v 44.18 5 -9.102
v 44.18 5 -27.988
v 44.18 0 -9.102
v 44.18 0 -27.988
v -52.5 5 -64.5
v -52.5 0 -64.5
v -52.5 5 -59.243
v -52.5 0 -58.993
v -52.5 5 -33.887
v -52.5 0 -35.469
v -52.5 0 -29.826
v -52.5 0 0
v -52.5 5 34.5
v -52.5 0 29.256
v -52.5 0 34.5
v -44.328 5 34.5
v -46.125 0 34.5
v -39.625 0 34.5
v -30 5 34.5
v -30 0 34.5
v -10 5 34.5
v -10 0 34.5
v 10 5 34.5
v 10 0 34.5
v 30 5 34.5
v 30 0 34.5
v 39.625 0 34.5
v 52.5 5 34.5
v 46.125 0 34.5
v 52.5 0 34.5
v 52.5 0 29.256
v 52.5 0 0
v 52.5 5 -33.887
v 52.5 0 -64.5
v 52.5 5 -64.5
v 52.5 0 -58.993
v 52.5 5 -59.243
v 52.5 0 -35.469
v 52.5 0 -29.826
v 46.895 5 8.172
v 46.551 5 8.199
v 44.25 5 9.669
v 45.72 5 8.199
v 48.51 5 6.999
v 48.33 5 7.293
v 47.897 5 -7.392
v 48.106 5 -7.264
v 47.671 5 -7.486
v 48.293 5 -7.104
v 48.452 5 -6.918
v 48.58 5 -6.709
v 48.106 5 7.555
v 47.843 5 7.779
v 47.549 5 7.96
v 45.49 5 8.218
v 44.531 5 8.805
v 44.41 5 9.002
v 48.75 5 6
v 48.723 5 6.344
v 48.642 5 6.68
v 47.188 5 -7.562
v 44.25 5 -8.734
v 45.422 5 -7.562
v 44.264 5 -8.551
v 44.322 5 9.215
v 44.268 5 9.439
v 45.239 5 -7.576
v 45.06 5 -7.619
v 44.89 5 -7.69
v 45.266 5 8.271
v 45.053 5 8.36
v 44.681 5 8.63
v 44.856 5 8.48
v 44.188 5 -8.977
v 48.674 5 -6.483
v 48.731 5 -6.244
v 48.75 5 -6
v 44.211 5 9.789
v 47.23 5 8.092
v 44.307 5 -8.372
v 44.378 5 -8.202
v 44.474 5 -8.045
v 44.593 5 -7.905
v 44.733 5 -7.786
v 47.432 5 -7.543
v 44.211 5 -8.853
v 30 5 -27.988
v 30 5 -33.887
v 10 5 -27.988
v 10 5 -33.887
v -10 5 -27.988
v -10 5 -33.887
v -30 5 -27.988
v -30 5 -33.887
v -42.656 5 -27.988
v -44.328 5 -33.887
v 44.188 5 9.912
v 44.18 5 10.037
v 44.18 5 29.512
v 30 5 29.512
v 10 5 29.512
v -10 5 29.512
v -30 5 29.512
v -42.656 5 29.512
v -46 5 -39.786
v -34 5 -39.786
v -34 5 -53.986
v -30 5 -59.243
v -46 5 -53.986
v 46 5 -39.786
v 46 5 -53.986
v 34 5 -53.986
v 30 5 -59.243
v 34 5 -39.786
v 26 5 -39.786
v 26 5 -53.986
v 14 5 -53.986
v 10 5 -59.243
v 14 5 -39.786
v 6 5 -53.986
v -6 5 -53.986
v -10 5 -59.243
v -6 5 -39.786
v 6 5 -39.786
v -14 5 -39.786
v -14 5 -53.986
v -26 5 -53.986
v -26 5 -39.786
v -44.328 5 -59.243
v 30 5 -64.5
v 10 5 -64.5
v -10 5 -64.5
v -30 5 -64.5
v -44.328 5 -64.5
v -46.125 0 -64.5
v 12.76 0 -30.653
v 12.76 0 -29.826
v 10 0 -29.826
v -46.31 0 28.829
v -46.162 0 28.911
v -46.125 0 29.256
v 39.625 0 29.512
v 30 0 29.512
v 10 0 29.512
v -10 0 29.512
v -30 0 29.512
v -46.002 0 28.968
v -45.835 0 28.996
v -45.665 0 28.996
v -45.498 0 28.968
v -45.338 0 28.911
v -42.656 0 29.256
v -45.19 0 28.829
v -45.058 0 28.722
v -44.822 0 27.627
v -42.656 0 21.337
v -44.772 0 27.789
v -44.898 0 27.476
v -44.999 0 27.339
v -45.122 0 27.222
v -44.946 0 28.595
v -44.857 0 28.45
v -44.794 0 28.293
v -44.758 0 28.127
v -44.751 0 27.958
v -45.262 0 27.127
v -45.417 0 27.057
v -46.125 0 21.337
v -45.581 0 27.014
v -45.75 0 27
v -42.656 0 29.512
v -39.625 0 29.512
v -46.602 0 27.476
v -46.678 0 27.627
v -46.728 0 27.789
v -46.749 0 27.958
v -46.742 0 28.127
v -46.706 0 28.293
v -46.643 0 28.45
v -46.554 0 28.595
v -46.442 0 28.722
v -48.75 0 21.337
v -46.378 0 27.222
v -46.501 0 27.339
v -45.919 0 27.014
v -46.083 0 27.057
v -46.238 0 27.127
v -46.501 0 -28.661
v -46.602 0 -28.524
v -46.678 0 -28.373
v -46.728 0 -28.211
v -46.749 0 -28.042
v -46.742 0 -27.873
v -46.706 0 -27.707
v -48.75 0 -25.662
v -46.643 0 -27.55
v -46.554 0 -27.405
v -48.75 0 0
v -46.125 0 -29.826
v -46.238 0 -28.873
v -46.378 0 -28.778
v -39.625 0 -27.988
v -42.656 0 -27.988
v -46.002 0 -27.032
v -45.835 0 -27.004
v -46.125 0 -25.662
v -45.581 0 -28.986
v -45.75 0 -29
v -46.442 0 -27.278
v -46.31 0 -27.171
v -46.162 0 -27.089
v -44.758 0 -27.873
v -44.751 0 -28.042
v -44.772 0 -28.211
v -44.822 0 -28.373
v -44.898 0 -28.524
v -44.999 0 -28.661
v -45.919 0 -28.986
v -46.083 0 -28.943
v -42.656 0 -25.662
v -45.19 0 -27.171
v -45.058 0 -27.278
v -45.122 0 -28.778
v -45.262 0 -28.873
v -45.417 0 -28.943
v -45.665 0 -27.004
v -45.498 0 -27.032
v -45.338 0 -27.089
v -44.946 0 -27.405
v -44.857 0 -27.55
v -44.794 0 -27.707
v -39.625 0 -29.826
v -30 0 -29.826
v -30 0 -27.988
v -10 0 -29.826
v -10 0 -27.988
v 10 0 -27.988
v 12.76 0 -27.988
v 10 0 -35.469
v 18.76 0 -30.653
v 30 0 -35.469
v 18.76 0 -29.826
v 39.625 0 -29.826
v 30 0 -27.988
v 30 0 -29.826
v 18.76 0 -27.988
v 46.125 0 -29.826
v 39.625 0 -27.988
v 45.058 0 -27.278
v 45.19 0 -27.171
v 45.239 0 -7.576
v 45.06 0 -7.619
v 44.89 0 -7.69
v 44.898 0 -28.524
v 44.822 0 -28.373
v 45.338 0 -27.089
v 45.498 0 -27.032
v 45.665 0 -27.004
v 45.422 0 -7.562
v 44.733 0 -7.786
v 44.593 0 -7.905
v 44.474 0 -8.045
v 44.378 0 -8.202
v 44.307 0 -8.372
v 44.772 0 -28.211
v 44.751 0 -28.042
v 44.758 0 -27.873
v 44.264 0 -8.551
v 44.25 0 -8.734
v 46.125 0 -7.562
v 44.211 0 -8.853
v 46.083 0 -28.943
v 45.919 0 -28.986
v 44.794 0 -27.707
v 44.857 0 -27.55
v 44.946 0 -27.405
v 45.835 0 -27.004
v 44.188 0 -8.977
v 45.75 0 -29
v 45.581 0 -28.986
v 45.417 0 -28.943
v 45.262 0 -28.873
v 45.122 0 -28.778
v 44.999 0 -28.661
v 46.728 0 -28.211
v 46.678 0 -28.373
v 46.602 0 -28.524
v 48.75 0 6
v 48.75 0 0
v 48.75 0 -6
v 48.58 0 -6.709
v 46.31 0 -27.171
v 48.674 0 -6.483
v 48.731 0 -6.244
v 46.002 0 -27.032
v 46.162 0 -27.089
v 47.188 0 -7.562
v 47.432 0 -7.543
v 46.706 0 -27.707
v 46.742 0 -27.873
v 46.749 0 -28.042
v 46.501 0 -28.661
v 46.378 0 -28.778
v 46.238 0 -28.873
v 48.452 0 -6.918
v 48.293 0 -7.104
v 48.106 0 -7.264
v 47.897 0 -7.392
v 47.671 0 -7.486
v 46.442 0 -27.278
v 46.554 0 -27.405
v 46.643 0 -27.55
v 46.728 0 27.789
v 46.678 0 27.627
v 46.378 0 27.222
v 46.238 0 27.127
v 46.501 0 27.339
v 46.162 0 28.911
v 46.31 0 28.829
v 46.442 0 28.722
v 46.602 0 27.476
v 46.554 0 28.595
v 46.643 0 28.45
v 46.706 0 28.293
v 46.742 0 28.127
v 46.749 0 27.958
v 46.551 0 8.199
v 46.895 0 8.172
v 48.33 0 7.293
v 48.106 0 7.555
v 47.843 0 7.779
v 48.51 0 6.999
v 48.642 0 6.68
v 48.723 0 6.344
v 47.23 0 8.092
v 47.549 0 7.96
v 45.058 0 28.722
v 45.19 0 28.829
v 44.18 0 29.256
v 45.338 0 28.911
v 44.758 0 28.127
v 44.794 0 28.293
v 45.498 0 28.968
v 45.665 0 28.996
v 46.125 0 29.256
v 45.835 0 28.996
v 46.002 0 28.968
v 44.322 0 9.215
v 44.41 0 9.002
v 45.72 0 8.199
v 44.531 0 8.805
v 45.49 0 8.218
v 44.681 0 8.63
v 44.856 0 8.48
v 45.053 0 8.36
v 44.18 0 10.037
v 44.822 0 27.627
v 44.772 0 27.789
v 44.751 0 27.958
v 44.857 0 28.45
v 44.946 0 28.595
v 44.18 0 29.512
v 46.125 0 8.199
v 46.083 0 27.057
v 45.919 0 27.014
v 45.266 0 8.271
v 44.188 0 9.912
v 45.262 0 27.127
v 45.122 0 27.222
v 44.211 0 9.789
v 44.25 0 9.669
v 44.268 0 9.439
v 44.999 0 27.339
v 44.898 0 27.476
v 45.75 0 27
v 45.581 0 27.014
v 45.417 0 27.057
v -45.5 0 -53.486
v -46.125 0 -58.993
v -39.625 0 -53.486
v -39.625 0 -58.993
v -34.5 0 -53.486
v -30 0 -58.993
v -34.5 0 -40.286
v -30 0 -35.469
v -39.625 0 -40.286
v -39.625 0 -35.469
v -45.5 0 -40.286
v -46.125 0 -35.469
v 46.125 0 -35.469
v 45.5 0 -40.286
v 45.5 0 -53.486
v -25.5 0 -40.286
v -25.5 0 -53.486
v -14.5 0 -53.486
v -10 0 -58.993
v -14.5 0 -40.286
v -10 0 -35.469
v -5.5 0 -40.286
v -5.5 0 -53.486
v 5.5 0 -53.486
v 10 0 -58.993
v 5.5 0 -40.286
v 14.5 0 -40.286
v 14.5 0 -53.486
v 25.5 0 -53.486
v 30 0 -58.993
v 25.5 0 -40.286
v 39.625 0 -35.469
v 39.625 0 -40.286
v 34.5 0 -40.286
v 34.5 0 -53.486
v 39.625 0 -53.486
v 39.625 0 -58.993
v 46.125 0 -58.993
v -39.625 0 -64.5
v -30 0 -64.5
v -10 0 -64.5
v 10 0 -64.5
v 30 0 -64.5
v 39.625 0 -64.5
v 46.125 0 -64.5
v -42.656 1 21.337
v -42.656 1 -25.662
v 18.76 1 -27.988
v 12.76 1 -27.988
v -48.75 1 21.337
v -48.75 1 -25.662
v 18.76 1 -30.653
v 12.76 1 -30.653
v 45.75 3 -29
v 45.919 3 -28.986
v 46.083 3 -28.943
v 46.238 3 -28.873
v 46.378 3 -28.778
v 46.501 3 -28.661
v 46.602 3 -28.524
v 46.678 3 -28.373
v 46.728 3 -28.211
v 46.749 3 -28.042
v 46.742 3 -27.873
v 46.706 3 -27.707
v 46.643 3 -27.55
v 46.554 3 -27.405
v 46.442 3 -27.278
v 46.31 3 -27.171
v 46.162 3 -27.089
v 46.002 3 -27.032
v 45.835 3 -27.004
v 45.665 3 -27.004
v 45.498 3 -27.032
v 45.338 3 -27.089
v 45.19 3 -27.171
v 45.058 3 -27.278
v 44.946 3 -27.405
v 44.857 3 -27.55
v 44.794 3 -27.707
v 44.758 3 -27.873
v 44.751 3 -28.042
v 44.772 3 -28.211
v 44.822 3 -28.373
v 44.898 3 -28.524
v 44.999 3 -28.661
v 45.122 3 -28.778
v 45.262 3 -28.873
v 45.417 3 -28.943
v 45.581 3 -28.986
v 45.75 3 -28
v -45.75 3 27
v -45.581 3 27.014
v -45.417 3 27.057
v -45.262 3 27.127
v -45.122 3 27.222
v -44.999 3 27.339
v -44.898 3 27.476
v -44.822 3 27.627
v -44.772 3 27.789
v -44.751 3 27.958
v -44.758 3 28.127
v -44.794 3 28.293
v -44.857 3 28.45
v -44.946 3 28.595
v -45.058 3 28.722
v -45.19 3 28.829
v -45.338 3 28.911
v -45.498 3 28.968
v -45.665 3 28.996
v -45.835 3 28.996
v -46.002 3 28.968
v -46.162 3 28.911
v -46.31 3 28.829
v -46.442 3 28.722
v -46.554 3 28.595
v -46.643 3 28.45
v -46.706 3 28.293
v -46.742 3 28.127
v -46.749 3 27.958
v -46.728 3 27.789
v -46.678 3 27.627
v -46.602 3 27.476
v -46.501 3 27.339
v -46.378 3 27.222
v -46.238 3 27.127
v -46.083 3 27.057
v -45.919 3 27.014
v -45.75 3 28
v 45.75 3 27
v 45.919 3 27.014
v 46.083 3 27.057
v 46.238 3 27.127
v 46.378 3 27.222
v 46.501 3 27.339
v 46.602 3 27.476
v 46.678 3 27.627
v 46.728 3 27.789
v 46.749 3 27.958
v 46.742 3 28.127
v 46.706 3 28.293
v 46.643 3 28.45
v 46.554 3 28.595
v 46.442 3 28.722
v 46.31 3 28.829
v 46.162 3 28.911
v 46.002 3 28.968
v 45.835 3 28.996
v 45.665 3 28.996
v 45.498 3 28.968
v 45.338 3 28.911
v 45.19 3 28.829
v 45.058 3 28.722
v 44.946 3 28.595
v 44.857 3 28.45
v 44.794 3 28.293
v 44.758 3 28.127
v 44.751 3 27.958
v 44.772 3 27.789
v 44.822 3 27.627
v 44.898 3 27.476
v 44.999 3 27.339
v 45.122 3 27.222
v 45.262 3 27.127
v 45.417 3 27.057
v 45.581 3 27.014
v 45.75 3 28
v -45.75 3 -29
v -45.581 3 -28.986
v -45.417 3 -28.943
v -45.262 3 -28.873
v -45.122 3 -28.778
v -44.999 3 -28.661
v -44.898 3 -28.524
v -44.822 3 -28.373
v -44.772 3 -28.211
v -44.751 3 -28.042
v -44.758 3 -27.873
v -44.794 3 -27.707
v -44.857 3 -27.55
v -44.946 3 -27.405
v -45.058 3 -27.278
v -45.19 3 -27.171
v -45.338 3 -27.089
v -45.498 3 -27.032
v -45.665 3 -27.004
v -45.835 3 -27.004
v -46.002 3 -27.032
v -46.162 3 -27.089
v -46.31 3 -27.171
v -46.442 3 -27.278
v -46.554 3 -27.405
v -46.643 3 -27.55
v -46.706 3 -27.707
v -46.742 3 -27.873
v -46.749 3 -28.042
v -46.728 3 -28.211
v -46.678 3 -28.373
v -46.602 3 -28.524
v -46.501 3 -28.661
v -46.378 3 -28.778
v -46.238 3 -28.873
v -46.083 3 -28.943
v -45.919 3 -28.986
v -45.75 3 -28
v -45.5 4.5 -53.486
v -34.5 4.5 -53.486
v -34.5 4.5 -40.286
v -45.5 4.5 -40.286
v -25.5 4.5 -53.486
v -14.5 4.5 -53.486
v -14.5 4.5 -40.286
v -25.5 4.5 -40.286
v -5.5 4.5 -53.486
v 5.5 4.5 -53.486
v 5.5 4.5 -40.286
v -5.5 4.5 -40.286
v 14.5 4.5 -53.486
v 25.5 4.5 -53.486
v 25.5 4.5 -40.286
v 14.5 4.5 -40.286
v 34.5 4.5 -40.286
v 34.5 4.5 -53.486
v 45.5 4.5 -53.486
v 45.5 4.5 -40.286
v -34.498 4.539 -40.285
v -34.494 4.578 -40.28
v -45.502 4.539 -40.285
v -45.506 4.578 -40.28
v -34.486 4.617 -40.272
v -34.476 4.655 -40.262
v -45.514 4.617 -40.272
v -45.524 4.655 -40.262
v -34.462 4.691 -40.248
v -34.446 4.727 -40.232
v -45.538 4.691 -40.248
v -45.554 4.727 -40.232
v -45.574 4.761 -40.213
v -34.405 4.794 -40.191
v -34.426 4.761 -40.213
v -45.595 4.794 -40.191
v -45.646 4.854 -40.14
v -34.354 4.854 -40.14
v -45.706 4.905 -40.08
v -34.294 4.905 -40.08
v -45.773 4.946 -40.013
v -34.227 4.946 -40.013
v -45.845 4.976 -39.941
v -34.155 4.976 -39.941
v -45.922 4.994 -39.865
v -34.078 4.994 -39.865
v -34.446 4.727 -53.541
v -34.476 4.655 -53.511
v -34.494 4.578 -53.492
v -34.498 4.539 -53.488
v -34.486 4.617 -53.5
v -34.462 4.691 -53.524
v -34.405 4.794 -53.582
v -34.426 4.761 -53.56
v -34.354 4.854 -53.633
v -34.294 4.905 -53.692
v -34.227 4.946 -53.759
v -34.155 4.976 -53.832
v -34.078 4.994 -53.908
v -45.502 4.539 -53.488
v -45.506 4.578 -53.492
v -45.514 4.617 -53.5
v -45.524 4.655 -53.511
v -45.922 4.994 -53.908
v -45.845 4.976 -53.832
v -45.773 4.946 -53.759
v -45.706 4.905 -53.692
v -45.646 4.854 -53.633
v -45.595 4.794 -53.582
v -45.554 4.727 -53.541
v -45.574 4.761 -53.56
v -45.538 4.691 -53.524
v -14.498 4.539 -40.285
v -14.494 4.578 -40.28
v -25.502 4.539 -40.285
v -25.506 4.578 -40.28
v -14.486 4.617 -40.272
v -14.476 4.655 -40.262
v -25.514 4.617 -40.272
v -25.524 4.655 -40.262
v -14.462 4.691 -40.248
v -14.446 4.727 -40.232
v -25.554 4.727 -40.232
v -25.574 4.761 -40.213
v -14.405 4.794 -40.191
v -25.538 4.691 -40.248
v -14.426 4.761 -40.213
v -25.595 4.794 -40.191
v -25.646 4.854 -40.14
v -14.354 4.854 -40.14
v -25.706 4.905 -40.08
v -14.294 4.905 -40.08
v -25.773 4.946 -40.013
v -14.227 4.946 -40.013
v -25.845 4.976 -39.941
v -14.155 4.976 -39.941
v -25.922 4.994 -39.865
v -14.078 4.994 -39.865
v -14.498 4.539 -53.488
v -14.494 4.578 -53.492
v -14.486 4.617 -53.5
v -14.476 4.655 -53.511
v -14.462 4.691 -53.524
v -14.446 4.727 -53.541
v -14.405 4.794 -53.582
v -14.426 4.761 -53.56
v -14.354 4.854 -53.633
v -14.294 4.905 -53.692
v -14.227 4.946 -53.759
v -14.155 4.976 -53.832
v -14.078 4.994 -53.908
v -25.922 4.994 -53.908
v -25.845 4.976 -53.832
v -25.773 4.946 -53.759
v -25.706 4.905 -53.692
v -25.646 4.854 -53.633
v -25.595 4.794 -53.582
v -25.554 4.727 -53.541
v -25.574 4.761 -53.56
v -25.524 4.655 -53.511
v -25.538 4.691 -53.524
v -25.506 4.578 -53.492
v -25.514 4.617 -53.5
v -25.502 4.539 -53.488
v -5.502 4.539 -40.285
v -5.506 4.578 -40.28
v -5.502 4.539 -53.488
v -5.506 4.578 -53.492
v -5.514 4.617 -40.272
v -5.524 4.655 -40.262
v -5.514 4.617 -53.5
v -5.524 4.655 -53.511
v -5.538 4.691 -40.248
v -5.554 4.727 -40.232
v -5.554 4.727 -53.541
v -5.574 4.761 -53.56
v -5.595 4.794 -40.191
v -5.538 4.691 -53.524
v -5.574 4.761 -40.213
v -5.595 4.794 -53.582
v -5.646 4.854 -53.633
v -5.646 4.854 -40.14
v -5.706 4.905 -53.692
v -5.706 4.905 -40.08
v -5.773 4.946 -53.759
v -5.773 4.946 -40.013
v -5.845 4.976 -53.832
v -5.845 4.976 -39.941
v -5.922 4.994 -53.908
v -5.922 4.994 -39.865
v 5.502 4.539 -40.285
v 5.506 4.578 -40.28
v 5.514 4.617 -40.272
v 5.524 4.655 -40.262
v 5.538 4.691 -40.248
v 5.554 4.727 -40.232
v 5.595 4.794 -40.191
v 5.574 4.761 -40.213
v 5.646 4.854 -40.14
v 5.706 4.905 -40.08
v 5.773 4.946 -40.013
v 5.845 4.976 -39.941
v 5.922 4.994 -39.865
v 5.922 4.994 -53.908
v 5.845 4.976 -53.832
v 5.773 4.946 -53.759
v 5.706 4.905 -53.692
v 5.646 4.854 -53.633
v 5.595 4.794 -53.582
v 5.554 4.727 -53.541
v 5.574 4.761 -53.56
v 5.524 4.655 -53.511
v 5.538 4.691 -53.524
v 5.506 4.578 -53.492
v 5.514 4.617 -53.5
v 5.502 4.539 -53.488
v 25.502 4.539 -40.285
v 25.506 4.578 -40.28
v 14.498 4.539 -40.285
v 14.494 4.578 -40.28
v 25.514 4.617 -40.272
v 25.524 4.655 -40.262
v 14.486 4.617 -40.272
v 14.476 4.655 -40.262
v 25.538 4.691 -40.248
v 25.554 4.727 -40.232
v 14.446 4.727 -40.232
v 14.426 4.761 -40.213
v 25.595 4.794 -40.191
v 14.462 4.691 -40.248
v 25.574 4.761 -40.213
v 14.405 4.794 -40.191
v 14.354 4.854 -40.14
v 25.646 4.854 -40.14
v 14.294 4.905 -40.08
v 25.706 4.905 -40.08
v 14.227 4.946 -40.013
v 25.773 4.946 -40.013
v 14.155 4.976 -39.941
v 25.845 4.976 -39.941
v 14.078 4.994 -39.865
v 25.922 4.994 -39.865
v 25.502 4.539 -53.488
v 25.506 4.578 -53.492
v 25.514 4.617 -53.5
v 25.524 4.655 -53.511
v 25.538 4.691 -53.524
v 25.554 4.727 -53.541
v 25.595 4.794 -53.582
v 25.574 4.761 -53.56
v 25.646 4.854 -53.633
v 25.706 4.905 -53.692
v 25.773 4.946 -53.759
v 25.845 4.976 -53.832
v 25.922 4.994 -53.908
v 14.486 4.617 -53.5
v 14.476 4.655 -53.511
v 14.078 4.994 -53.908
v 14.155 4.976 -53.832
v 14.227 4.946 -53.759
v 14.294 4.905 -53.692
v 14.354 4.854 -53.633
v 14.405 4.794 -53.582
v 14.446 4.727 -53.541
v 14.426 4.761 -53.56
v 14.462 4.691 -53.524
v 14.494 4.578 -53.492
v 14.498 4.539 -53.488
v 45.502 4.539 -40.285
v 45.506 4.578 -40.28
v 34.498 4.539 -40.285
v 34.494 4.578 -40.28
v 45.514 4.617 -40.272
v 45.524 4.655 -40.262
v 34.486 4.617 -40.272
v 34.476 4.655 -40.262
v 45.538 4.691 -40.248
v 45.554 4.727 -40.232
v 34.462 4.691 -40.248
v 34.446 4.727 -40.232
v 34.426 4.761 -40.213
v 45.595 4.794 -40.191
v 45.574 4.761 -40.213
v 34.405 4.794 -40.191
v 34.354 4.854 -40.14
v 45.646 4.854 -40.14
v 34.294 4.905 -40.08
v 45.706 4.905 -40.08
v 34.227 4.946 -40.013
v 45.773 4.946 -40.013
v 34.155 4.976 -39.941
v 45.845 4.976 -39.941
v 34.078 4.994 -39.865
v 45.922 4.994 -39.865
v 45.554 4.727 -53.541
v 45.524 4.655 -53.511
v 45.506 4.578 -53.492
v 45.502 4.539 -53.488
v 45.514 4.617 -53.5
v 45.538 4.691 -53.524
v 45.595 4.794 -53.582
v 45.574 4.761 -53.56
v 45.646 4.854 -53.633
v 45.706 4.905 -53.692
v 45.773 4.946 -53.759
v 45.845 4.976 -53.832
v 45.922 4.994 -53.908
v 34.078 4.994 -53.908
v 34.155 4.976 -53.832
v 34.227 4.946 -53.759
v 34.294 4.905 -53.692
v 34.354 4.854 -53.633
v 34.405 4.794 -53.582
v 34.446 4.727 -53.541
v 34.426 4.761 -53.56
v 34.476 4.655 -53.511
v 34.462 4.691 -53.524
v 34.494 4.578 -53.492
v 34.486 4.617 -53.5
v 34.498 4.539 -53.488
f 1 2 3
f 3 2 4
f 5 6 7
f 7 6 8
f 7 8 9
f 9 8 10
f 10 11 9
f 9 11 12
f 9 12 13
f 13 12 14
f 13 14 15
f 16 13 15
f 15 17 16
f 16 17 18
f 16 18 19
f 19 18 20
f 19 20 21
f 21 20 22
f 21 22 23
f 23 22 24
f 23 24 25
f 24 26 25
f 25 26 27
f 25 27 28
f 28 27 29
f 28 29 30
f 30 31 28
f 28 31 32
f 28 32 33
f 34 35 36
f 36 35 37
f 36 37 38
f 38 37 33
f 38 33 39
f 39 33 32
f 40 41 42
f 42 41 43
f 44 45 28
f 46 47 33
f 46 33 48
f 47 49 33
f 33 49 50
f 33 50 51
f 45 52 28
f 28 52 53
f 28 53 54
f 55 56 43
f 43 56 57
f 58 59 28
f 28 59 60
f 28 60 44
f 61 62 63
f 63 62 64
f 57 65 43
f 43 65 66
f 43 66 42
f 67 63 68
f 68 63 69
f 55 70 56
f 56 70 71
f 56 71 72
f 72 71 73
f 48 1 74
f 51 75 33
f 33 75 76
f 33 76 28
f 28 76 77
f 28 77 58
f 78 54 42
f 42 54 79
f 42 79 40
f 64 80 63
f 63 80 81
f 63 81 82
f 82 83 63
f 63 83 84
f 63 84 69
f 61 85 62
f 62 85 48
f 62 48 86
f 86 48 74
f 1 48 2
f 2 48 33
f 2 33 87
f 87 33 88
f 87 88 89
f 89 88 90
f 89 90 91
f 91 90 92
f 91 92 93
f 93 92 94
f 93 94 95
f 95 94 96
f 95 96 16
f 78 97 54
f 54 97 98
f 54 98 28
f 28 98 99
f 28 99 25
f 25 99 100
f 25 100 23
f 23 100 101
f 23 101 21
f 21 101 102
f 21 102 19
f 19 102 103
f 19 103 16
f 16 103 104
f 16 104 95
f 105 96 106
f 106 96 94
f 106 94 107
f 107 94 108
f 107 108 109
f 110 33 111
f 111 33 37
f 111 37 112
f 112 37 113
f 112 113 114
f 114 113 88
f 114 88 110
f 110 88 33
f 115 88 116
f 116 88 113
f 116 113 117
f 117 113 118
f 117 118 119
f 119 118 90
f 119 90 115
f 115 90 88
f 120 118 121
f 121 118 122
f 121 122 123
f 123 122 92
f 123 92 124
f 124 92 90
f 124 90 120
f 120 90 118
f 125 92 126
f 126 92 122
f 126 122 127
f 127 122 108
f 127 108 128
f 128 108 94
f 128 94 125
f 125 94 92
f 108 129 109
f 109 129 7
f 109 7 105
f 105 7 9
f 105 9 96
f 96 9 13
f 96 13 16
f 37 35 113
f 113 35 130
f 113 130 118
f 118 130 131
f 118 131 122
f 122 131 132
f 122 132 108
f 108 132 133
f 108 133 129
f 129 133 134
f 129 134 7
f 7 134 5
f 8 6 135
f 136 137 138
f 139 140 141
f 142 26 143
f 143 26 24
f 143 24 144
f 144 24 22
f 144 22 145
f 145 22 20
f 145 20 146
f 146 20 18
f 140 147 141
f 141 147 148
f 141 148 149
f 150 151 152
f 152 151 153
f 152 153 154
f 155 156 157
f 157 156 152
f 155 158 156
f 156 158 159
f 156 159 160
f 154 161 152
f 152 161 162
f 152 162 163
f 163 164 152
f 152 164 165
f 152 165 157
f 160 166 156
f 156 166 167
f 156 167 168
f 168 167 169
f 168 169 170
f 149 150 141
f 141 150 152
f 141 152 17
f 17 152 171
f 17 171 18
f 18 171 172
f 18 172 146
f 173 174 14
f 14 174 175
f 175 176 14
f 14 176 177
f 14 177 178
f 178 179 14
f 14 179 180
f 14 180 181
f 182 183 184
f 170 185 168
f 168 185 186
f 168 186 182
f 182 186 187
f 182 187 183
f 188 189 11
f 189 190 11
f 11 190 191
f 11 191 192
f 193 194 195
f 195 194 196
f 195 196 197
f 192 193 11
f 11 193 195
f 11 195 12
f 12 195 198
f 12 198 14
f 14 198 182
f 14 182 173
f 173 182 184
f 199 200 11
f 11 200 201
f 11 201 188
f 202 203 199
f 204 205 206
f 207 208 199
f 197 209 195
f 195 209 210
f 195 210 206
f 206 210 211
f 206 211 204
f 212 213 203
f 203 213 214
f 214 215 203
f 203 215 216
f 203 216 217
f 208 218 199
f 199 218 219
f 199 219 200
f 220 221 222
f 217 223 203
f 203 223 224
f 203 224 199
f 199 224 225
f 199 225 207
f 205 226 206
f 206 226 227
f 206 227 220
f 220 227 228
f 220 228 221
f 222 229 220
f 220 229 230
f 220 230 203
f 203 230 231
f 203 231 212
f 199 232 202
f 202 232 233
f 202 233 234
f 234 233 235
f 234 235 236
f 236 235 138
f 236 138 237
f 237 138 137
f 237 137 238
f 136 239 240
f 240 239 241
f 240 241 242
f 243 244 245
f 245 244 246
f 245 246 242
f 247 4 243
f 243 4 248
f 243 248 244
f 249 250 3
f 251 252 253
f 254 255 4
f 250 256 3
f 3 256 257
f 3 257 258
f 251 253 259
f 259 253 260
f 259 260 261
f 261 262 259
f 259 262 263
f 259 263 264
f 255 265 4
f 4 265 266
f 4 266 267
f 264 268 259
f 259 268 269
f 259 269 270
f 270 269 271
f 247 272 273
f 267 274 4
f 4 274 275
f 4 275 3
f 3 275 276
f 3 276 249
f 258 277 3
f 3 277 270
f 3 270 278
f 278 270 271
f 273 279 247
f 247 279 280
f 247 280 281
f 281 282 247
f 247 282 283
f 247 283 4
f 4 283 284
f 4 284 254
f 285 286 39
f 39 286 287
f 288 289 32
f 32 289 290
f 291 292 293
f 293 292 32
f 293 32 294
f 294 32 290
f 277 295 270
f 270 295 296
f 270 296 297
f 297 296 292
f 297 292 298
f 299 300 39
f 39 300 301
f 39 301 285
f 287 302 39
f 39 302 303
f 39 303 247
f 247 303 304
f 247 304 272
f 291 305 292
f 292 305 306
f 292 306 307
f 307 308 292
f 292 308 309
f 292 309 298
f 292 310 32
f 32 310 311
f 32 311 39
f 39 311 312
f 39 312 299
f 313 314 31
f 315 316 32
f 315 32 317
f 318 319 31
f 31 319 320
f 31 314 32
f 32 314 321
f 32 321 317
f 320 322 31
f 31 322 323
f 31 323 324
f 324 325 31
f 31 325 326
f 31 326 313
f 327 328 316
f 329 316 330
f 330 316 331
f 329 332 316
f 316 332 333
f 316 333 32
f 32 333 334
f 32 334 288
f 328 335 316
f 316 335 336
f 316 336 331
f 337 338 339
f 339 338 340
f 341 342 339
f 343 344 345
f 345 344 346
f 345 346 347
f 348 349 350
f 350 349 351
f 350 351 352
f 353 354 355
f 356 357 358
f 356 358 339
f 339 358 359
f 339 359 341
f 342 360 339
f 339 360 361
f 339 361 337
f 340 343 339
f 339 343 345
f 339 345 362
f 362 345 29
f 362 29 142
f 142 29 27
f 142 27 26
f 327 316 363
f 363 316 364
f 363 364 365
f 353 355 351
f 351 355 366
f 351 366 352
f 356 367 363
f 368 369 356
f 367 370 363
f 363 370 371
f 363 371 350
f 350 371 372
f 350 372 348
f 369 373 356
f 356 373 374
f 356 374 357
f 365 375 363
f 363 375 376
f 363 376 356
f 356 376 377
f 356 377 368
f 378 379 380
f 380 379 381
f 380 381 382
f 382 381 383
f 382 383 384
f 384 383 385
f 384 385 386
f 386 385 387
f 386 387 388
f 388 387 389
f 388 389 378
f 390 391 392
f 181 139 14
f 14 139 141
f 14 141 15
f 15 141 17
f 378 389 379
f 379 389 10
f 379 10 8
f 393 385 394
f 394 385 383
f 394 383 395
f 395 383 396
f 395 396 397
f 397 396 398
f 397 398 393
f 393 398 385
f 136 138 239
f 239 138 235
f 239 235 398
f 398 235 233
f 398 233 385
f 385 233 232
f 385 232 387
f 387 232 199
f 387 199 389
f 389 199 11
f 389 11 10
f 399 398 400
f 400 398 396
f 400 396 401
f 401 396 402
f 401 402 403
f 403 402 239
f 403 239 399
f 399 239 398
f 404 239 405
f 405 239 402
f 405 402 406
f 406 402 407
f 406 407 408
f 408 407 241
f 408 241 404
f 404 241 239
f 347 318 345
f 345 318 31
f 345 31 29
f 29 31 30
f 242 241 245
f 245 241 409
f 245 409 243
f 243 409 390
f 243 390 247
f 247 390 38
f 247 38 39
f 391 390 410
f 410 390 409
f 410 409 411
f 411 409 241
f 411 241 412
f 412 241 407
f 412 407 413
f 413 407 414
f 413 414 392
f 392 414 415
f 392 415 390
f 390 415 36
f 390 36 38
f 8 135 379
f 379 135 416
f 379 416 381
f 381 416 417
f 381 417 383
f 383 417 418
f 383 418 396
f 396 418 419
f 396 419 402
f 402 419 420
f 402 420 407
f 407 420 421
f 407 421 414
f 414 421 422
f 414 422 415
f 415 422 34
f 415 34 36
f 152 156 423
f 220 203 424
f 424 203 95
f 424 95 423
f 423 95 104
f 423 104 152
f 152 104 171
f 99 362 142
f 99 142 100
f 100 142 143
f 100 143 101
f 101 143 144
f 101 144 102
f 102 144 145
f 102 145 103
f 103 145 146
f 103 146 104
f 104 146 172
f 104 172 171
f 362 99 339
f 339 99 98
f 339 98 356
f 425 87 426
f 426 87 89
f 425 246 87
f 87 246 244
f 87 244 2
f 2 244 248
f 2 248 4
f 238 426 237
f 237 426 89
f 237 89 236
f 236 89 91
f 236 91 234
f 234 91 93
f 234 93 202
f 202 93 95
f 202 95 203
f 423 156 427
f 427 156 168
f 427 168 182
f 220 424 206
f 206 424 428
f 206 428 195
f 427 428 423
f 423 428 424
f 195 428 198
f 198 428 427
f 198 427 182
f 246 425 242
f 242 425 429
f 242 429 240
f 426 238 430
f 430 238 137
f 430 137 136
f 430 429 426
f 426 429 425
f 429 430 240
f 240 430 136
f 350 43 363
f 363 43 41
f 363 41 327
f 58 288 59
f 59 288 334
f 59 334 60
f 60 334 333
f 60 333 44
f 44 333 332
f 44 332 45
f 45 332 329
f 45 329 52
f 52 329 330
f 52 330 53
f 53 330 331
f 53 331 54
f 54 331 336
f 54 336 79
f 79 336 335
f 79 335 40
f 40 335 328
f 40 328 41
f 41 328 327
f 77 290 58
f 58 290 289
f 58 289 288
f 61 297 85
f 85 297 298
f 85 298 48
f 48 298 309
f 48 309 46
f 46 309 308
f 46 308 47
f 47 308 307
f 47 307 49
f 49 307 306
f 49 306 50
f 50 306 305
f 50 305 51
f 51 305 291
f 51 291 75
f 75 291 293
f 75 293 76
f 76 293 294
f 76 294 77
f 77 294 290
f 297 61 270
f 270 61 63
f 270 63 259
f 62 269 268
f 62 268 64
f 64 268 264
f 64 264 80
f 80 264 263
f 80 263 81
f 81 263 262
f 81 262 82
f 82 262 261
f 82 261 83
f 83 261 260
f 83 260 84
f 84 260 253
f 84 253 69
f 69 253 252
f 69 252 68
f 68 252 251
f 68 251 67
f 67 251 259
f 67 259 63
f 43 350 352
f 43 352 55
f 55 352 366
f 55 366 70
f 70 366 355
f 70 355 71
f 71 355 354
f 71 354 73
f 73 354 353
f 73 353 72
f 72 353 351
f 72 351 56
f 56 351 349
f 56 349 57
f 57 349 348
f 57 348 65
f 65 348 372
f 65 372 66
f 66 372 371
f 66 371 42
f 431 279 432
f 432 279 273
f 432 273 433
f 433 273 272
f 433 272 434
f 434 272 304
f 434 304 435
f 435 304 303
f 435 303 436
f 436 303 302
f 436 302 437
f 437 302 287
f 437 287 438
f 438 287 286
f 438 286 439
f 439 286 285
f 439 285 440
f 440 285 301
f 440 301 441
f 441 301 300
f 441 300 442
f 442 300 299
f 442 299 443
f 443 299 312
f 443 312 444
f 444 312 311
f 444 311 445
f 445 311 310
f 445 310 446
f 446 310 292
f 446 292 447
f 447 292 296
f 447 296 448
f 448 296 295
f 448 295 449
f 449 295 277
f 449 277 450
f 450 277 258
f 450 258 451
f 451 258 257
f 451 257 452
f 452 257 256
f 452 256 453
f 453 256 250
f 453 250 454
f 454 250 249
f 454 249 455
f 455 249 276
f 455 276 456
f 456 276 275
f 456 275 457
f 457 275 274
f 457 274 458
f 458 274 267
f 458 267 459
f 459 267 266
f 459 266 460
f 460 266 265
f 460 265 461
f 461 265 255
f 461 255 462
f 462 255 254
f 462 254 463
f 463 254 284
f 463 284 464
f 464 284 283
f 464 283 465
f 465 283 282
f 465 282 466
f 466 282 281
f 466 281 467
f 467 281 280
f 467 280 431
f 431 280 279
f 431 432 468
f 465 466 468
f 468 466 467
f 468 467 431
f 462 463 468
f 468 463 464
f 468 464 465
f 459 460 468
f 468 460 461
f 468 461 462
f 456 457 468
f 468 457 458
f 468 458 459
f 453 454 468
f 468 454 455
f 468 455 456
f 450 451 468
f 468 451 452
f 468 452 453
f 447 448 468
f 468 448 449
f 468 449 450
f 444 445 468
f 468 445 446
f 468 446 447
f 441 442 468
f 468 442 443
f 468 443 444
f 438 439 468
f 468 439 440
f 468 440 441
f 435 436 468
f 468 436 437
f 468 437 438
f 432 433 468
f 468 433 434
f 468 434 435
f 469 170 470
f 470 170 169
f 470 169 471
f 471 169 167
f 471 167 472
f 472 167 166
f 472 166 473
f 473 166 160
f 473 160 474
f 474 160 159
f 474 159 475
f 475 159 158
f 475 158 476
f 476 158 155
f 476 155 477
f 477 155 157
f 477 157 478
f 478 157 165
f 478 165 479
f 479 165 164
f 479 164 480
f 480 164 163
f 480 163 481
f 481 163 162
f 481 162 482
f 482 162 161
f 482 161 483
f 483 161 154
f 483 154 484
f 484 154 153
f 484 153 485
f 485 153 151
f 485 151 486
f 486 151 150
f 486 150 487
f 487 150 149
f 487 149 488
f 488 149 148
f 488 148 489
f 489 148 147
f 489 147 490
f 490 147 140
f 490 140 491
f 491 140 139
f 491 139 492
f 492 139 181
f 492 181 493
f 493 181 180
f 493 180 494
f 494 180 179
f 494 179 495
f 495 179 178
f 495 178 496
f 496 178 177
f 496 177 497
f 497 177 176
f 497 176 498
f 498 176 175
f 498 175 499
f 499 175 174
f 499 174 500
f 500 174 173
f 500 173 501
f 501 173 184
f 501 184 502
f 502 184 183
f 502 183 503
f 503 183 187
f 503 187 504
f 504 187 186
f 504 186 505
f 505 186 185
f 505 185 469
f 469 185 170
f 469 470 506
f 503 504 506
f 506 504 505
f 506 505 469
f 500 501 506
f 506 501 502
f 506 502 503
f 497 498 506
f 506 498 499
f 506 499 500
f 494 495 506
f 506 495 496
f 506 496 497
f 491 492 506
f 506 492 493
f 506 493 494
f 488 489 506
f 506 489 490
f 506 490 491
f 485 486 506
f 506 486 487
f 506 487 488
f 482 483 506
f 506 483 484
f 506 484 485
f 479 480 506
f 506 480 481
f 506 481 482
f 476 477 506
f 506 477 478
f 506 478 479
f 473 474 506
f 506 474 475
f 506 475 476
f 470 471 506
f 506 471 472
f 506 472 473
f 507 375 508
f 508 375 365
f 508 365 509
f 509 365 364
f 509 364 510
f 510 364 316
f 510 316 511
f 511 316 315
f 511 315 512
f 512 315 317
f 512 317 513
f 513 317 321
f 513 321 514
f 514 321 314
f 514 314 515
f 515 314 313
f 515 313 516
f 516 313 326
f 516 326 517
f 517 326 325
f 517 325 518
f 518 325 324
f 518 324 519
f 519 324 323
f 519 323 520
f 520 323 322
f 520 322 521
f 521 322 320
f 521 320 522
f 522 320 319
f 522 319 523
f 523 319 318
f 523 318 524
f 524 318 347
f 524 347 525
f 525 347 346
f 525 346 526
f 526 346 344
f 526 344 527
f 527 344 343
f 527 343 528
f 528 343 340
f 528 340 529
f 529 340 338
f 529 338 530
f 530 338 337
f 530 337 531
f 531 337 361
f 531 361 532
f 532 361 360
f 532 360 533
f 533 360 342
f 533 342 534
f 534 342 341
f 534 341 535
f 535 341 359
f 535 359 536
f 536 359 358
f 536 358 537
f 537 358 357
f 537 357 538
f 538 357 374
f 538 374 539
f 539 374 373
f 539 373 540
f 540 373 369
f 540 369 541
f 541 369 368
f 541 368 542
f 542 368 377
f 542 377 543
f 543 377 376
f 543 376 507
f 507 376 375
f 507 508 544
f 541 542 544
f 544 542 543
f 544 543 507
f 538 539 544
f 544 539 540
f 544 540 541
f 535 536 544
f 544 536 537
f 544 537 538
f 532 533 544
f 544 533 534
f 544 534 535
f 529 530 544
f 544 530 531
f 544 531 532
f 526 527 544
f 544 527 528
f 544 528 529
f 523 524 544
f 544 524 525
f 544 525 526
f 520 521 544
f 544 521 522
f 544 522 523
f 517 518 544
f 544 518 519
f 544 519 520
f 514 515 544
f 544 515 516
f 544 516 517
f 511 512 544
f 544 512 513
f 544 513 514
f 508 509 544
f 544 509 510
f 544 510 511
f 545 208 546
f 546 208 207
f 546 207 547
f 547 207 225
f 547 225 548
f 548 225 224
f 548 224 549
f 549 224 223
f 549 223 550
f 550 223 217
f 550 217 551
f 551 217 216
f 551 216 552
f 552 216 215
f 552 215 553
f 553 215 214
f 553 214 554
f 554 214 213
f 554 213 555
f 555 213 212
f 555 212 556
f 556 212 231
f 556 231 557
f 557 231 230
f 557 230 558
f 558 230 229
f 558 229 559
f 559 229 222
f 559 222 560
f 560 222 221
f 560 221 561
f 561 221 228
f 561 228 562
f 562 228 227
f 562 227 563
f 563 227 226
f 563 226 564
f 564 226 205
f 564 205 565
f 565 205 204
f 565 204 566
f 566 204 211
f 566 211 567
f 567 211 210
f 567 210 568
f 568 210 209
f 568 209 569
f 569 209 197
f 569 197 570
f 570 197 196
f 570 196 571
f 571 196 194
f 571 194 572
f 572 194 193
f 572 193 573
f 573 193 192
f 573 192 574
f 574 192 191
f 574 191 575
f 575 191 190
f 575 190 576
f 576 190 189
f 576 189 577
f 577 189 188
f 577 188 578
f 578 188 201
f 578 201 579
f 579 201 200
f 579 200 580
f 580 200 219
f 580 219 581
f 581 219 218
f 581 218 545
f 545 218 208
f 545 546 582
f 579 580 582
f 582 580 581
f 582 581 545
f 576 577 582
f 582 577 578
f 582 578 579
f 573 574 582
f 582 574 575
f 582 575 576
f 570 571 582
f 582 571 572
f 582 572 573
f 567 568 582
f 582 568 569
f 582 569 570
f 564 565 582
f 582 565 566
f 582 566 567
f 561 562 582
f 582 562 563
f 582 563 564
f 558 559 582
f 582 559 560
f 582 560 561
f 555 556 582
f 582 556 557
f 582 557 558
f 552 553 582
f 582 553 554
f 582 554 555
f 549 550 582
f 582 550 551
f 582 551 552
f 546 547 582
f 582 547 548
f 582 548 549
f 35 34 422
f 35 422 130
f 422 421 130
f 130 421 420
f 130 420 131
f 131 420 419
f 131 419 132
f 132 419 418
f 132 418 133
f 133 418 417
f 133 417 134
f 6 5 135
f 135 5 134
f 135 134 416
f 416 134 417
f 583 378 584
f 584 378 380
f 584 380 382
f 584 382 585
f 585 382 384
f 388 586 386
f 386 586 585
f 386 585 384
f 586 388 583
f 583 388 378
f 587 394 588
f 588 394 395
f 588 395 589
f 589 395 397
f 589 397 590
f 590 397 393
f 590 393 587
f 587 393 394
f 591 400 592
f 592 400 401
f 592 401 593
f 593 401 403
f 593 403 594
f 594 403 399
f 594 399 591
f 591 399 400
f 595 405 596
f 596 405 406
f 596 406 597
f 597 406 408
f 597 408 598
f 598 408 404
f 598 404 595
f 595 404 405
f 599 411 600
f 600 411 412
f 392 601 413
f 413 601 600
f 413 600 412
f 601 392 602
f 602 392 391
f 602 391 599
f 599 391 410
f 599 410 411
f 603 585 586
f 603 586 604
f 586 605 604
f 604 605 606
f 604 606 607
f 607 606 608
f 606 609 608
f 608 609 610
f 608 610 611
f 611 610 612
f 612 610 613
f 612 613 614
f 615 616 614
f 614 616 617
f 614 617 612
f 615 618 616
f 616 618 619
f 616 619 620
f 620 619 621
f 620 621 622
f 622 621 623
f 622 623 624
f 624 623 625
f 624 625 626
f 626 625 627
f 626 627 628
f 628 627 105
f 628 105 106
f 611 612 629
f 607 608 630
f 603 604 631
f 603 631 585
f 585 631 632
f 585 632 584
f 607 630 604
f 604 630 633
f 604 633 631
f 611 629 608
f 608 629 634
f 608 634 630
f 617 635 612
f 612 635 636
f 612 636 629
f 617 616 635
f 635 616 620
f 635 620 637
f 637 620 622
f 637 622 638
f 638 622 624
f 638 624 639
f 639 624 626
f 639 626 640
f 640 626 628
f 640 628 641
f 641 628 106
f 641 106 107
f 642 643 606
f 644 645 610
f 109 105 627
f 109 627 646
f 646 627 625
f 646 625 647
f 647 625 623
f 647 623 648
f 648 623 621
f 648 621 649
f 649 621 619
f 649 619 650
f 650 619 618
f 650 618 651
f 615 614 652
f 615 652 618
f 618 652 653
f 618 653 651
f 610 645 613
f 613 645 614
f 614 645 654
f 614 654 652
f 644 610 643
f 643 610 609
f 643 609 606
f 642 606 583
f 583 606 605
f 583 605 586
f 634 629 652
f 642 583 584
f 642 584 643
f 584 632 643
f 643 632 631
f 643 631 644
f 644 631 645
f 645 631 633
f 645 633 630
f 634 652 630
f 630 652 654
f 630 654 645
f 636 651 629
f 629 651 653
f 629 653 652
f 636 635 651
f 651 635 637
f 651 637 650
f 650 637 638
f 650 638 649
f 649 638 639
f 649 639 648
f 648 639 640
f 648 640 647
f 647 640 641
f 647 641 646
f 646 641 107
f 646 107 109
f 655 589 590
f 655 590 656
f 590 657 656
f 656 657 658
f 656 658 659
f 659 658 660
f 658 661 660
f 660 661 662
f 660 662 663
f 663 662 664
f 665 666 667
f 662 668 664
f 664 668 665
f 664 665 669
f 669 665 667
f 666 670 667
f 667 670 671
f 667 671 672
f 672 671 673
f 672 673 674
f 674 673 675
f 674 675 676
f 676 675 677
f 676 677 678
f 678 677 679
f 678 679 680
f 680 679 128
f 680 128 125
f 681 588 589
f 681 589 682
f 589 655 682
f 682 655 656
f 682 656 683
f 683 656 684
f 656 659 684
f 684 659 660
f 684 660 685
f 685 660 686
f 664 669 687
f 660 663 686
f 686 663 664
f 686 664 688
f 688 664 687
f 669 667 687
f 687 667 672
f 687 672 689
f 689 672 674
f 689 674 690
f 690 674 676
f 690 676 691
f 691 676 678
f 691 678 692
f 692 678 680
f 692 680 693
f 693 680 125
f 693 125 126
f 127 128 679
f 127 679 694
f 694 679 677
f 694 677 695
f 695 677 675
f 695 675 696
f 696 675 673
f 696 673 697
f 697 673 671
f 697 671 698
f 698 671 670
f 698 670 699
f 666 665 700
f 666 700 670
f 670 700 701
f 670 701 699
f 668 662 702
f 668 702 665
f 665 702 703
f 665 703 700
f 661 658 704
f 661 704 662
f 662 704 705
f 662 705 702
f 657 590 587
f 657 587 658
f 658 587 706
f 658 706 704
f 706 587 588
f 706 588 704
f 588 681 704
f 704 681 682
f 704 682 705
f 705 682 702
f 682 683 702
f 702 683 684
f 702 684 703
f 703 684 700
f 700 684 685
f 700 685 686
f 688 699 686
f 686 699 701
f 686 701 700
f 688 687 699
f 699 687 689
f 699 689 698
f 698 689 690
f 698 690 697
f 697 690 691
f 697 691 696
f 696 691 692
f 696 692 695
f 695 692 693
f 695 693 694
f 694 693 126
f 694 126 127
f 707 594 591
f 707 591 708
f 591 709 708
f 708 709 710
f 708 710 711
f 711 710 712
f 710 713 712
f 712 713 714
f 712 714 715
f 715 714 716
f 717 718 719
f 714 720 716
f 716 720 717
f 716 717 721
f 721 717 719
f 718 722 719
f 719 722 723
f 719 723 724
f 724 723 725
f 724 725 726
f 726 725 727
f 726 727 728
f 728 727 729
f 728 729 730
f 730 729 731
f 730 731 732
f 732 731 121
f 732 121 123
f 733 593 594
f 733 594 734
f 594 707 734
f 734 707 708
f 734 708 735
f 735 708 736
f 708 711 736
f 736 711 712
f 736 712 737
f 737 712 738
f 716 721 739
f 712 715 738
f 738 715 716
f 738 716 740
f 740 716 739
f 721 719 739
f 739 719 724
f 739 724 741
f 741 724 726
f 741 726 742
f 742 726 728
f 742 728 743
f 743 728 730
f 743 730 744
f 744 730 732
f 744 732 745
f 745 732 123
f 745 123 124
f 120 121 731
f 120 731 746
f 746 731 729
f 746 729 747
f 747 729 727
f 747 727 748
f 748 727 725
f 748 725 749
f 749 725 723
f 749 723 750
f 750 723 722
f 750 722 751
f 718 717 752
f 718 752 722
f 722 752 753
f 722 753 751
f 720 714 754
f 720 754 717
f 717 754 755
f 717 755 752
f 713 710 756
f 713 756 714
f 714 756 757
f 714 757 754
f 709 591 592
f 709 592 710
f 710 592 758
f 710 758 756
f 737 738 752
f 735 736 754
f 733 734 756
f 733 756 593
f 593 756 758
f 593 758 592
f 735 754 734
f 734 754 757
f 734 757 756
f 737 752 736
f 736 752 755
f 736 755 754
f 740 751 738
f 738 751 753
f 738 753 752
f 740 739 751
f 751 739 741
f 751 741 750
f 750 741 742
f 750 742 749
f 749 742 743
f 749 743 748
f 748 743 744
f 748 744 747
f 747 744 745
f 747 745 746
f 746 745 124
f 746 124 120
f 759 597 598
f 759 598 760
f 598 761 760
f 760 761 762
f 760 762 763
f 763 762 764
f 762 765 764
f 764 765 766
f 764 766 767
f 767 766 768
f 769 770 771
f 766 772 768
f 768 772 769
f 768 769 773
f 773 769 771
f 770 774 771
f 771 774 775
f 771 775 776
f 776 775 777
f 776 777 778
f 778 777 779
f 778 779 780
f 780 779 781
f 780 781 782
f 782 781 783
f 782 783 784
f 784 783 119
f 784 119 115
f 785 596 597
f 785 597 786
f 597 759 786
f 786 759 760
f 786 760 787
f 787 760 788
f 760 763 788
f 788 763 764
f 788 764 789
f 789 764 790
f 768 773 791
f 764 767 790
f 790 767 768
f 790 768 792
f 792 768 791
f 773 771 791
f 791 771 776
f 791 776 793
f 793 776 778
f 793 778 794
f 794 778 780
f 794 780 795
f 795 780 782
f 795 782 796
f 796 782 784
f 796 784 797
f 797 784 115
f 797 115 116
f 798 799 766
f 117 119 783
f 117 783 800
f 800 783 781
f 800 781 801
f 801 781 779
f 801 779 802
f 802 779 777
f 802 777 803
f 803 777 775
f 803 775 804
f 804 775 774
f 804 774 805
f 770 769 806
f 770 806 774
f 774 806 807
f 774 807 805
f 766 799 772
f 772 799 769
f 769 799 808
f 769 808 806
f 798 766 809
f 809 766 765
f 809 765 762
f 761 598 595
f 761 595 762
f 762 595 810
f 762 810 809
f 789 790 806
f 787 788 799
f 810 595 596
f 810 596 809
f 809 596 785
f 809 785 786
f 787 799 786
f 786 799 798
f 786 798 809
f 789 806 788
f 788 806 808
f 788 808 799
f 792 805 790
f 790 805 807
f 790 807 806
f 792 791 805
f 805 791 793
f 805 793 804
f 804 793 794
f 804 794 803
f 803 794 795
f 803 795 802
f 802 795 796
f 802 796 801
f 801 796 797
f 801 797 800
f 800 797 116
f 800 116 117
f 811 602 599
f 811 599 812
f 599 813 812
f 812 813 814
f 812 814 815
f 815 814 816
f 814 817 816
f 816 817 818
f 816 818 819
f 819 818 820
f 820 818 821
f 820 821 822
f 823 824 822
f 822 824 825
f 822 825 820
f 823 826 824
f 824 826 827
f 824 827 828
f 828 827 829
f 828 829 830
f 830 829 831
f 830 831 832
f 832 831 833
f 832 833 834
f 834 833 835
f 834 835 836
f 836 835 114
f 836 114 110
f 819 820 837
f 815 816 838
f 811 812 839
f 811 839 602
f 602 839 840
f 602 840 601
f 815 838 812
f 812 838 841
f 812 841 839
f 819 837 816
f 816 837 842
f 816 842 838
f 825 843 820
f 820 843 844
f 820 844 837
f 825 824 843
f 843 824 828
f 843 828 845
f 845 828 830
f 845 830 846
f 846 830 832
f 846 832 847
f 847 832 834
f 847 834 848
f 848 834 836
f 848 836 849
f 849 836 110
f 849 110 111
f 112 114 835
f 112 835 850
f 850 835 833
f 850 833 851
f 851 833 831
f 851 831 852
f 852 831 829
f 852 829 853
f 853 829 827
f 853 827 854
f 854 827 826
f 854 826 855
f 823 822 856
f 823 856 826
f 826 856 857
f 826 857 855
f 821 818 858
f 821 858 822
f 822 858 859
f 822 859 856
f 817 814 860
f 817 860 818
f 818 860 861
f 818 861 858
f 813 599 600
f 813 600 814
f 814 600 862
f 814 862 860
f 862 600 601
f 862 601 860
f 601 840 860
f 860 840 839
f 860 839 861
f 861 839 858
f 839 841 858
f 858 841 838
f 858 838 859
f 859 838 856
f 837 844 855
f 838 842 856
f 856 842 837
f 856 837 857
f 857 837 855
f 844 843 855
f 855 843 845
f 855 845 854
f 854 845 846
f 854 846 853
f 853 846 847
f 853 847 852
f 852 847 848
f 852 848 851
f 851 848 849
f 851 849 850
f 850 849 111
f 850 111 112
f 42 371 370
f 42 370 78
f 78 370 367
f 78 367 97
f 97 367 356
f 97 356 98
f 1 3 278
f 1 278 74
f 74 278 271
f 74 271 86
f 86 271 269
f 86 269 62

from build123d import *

# Parameters (mm, degrees)
SKETCH1_W           = 105
SKETCH1_H           = 69
BOSS_EXTRUDE1_DEPTH = 5
SKETCH2_W           = 86.836
SKETCH2_H           = 57.499
CUT_EXTRUDE1_DEPTH  = 81.210380614
CUT_EXTRUDE2_DEPTH  = 1
SKETCH4_W           = 5
SKETCH4_H           = 2.165
SKETCH4_H_2         = 0.335
CUT_EXTRUDE3_DEPTH  = 1
CUT_EXTRUDE4_DEPTH  = 81.210380614
SKETCH9_R           = 1
CUT_EXTRUDE7_DEPTH  = 3
SKETCH7_W           = 105
SKETCH7_H           = 30
BOSS_EXTRUDE2_DEPTH = 5
SKETCH8_W           = 11
SKETCH8_H           = 13.2
CUT_EXTRUDE6_DEPTH  = 84.315664794
FILLET1_R           = 0.5
FILLET3_R           = 1


with BuildPart() as part:
    # Sketch1 → Boss-Extrude1 (new body)
    with BuildSketch(Plane(origin=(0, 0, 0), x_dir=(1, 0, 0), z_dir=(0, 1, 0))):
        Rectangle(SKETCH1_W, SKETCH1_H)
    extrude(amount=BOSS_EXTRUDE1_DEPTH)

    # Sketch2 → Cut-Extrude1 (cut, through all)
    with BuildSketch(Plane(origin=(17.072113262, 0, 5.103361153), x_dir=(-1, 0, 0), z_dir=(0, -1, 0))):
        with Locations((16.310113262, 4.341361153)):
            Rectangle(SKETCH2_W, SKETCH2_H)
    extrude(amount=-CUT_EXTRUDE1_DEPTH, mode=Mode.SUBTRACT)

    # Sketch3 → Cut-Extrude2 (cut)
    with BuildSketch(Plane(origin=(17.072113262, 0, 5.103361153), x_dir=(-1, 0, 0), z_dir=(0, -1, 0))):
        Polygon((59.822113262, 30.765861153), (54.524773562, 30.765861153), (54.524773562, -16.234138847), (59.822113262, -16.234138847), (65.822113262, -16.234138847), (65.822113262, 30.765861153), align=None)
    extrude(amount=-CUT_EXTRUDE2_DEPTH, mode=Mode.SUBTRACT)

    # Sketch4 → Cut-Extrude3 (cut)
    with BuildSketch(Plane(origin=(17.072113262, 0, 5.103361153), x_dir=(-1, 0, 0), z_dir=(0, -1, 0))):
        Polygon((-1.187888405, 35.255861153), (3.812111595, 35.255861153), (3.812111595, 33.090861153), (4.312111595, 33.090861153), (4.312111595, 35.755861153), (-1.687888405, 35.755861153), (-1.687888405, 33.090861153), (-1.187888405, 33.090861153), align=None)
        with Locations((1.312111595, 34.173361153)):
            Rectangle(SKETCH4_W, SKETCH4_H)
        Polygon((4.312111595, 33.090861153), (3.812111595, 33.090861153), (3.812111595, 32.755861153), (-1.187888405, 32.755861153), (-1.187888405, 33.090861153), (-1.687888405, 33.090861153), (-1.687888405, 32.255861153), (4.312111595, 32.255861153), align=None)
        with Locations((1.312111595, 32.923361153)):
            Rectangle(SKETCH4_W, SKETCH4_H_2)
    extrude(amount=-CUT_EXTRUDE3_DEPTH, mode=Mode.SUBTRACT)

    # Sketch5 → Cut-Extrude4 (cut, through all)
    with BuildSketch(Plane(origin=(17.072113262, 0, 5.103361153), x_dir=(-1, 0, 0), z_dir=(0, -1, 0))):
        with BuildLine():
            Line((-31.677886738, -0.896638847), (-31.677886738, 11.103361153))
            ThreePointArc((-31.677886738, 11.103361153), (-31.220399504, 12.207833039), (-30.115927617, 12.665320274))
            Line((-30.115927617, 12.665320274), (-28.350143546, 12.665320274))
            ThreePointArc((-28.350143546, 12.665320274), (-27.521232808, 13.008666344), (-27.177886738, 13.837577082))
            Line((-27.177886738, 13.837577082), (-18.865935491, 13.837577082))
            Line((-18.865935491, 13.837577082), (-18.865935491, -4.56597095))
            Line((-18.865935491, -4.56597095), (-27.177886738, -4.56597095))
            ThreePointArc((-27.177886738, -4.56597095), (-27.60841615, -3.526581006), (-28.647806094, -3.096051594))
            Line((-28.647806094, -3.096051594), (-29.478473991, -3.096051594))
            ThreePointArc((-29.478473991, -3.096051594), (-31.033693659, -2.451858515), (-31.677886738, -0.896638847))
        make_face()
    extrude(amount=-CUT_EXTRUDE4_DEPTH, mode=Mode.SUBTRACT)

    # Sketch9 → Cut-Extrude7 (cut)
    with BuildSketch(Plane(origin=(17.072113262, 0, 5.103361153), x_dir=(-1, 0, 0), z_dir=(0, -1, 0))):
        with Locations(Location((-28.677886738, 33.103361153, 0), (0, 0, 90))):
            Circle(SKETCH9_R)
        with Locations(Location((62.822113262, 33.103361153, 0), (0, 0, 90))):
            Circle(SKETCH9_R)
        with Locations(Location((-28.677886738, -22.896638847, 0), (0, 0, 90))):
            Circle(SKETCH9_R)
        with Locations(Location((62.822113262, -22.896638847, 0), (0, 0, 90))):
            Circle(SKETCH9_R)
    extrude(amount=-CUT_EXTRUDE7_DEPTH, mode=Mode.SUBTRACT)

    # Sketch7 → Boss-Extrude2 (add)
    with BuildSketch(Plane(origin=(0, 5, 0), x_dir=(1, 0, 0), z_dir=(0, 1, 0))):
        with Locations((0, 49.5)):
            Rectangle(SKETCH7_W, SKETCH7_H)
    extrude(amount=-BOSS_EXTRUDE2_DEPTH)

    # Sketch8 → Cut-Extrude6 (cut, through all)
    with BuildSketch(Plane(origin=(0, 5, 0), x_dir=(1, 0, 0), z_dir=(0, 1, 0))):
        with Locations((20, 46.886314888)):
            Rectangle(SKETCH8_W, SKETCH8_H)
        with Locations((40, 46.886314888)):
            Rectangle(SKETCH8_W, SKETCH8_H)
        with Locations((0, 46.886314888)):
            Rectangle(SKETCH8_W, SKETCH8_H)
        with Locations((-20, 46.886314888)):
            Rectangle(SKETCH8_W, SKETCH8_H)
        with Locations((-40, 46.886314888)):
            Rectangle(SKETCH8_W, SKETCH8_H)
    extrude(amount=-CUT_EXTRUDE6_DEPTH, mode=Mode.SUBTRACT)

    # Fillet1
    fillet1_edges = [part.edges().sort_by_distance(p)[0] for p in [
        (34.5, 5, -46.886314888),
        (40, 5, -40.286314888),
        (45.5, 5, -46.886314888),
        (40, 5, -53.486314888),
        (20, 5, -53.486314888),
        (14.5, 5, -46.886314888),
        (20, 5, -40.286314888),
        (25.5, 5, -46.886314888),
        (0, 5, -53.486314888),
        (-5.5, 5, -46.886314888),
        (0, 5, -40.286314888),
        (5.5, 5, -46.886314888),
        (-20, 5, -53.486314888),
        (-25.5, 5, -46.886314888),
        (-20, 5, -40.286314888),
        (-14.5, 5, -46.886314888),
        (-40, 5, -53.486314888),
        (-45.5, 5, -46.886314888),
        (-40, 5, -40.286314888),
        (-34.5, 5, -46.886314888),
    ]]
    fillet(fillet1_edges, radius=FILLET1_R)

    # Fillet3
    # the kernel refuses this fillet: 1 mm, written as the material it takes off along each edge
    with BuildSketch(Plane(origin=(44.18, -0.918898797, 9.669332102), x_dir=(0, 0, 1), z_dir=(0, 1, 0)), Plane(origin=(44.18, 5.918898797, -8.734215929), x_dir=(0, 0, -1), z_dir=(0, -1, 0))) as fillet3_piece_1:
        with BuildLine():
            CenterArc((0.367559519, 1), FILLET3_R, 248.434814985, 21.565185015)
            Line((0, 0.07), (-0.00735119, 0.0514))
            ThreePointArc((-0.00735119, 0.0514), (-0.02, 0.035), (-0.02, 0))
            Line((-0.02, 0), (0, -0.02))
            Line((0, -0.02), (0.367559519, -0.02))
            Line((0.367559519, -0.02), (0.367559519, 0))
        make_face()
    extrude(amount=6.837797595, mode=Mode.SUBTRACT)


solid = part.part
